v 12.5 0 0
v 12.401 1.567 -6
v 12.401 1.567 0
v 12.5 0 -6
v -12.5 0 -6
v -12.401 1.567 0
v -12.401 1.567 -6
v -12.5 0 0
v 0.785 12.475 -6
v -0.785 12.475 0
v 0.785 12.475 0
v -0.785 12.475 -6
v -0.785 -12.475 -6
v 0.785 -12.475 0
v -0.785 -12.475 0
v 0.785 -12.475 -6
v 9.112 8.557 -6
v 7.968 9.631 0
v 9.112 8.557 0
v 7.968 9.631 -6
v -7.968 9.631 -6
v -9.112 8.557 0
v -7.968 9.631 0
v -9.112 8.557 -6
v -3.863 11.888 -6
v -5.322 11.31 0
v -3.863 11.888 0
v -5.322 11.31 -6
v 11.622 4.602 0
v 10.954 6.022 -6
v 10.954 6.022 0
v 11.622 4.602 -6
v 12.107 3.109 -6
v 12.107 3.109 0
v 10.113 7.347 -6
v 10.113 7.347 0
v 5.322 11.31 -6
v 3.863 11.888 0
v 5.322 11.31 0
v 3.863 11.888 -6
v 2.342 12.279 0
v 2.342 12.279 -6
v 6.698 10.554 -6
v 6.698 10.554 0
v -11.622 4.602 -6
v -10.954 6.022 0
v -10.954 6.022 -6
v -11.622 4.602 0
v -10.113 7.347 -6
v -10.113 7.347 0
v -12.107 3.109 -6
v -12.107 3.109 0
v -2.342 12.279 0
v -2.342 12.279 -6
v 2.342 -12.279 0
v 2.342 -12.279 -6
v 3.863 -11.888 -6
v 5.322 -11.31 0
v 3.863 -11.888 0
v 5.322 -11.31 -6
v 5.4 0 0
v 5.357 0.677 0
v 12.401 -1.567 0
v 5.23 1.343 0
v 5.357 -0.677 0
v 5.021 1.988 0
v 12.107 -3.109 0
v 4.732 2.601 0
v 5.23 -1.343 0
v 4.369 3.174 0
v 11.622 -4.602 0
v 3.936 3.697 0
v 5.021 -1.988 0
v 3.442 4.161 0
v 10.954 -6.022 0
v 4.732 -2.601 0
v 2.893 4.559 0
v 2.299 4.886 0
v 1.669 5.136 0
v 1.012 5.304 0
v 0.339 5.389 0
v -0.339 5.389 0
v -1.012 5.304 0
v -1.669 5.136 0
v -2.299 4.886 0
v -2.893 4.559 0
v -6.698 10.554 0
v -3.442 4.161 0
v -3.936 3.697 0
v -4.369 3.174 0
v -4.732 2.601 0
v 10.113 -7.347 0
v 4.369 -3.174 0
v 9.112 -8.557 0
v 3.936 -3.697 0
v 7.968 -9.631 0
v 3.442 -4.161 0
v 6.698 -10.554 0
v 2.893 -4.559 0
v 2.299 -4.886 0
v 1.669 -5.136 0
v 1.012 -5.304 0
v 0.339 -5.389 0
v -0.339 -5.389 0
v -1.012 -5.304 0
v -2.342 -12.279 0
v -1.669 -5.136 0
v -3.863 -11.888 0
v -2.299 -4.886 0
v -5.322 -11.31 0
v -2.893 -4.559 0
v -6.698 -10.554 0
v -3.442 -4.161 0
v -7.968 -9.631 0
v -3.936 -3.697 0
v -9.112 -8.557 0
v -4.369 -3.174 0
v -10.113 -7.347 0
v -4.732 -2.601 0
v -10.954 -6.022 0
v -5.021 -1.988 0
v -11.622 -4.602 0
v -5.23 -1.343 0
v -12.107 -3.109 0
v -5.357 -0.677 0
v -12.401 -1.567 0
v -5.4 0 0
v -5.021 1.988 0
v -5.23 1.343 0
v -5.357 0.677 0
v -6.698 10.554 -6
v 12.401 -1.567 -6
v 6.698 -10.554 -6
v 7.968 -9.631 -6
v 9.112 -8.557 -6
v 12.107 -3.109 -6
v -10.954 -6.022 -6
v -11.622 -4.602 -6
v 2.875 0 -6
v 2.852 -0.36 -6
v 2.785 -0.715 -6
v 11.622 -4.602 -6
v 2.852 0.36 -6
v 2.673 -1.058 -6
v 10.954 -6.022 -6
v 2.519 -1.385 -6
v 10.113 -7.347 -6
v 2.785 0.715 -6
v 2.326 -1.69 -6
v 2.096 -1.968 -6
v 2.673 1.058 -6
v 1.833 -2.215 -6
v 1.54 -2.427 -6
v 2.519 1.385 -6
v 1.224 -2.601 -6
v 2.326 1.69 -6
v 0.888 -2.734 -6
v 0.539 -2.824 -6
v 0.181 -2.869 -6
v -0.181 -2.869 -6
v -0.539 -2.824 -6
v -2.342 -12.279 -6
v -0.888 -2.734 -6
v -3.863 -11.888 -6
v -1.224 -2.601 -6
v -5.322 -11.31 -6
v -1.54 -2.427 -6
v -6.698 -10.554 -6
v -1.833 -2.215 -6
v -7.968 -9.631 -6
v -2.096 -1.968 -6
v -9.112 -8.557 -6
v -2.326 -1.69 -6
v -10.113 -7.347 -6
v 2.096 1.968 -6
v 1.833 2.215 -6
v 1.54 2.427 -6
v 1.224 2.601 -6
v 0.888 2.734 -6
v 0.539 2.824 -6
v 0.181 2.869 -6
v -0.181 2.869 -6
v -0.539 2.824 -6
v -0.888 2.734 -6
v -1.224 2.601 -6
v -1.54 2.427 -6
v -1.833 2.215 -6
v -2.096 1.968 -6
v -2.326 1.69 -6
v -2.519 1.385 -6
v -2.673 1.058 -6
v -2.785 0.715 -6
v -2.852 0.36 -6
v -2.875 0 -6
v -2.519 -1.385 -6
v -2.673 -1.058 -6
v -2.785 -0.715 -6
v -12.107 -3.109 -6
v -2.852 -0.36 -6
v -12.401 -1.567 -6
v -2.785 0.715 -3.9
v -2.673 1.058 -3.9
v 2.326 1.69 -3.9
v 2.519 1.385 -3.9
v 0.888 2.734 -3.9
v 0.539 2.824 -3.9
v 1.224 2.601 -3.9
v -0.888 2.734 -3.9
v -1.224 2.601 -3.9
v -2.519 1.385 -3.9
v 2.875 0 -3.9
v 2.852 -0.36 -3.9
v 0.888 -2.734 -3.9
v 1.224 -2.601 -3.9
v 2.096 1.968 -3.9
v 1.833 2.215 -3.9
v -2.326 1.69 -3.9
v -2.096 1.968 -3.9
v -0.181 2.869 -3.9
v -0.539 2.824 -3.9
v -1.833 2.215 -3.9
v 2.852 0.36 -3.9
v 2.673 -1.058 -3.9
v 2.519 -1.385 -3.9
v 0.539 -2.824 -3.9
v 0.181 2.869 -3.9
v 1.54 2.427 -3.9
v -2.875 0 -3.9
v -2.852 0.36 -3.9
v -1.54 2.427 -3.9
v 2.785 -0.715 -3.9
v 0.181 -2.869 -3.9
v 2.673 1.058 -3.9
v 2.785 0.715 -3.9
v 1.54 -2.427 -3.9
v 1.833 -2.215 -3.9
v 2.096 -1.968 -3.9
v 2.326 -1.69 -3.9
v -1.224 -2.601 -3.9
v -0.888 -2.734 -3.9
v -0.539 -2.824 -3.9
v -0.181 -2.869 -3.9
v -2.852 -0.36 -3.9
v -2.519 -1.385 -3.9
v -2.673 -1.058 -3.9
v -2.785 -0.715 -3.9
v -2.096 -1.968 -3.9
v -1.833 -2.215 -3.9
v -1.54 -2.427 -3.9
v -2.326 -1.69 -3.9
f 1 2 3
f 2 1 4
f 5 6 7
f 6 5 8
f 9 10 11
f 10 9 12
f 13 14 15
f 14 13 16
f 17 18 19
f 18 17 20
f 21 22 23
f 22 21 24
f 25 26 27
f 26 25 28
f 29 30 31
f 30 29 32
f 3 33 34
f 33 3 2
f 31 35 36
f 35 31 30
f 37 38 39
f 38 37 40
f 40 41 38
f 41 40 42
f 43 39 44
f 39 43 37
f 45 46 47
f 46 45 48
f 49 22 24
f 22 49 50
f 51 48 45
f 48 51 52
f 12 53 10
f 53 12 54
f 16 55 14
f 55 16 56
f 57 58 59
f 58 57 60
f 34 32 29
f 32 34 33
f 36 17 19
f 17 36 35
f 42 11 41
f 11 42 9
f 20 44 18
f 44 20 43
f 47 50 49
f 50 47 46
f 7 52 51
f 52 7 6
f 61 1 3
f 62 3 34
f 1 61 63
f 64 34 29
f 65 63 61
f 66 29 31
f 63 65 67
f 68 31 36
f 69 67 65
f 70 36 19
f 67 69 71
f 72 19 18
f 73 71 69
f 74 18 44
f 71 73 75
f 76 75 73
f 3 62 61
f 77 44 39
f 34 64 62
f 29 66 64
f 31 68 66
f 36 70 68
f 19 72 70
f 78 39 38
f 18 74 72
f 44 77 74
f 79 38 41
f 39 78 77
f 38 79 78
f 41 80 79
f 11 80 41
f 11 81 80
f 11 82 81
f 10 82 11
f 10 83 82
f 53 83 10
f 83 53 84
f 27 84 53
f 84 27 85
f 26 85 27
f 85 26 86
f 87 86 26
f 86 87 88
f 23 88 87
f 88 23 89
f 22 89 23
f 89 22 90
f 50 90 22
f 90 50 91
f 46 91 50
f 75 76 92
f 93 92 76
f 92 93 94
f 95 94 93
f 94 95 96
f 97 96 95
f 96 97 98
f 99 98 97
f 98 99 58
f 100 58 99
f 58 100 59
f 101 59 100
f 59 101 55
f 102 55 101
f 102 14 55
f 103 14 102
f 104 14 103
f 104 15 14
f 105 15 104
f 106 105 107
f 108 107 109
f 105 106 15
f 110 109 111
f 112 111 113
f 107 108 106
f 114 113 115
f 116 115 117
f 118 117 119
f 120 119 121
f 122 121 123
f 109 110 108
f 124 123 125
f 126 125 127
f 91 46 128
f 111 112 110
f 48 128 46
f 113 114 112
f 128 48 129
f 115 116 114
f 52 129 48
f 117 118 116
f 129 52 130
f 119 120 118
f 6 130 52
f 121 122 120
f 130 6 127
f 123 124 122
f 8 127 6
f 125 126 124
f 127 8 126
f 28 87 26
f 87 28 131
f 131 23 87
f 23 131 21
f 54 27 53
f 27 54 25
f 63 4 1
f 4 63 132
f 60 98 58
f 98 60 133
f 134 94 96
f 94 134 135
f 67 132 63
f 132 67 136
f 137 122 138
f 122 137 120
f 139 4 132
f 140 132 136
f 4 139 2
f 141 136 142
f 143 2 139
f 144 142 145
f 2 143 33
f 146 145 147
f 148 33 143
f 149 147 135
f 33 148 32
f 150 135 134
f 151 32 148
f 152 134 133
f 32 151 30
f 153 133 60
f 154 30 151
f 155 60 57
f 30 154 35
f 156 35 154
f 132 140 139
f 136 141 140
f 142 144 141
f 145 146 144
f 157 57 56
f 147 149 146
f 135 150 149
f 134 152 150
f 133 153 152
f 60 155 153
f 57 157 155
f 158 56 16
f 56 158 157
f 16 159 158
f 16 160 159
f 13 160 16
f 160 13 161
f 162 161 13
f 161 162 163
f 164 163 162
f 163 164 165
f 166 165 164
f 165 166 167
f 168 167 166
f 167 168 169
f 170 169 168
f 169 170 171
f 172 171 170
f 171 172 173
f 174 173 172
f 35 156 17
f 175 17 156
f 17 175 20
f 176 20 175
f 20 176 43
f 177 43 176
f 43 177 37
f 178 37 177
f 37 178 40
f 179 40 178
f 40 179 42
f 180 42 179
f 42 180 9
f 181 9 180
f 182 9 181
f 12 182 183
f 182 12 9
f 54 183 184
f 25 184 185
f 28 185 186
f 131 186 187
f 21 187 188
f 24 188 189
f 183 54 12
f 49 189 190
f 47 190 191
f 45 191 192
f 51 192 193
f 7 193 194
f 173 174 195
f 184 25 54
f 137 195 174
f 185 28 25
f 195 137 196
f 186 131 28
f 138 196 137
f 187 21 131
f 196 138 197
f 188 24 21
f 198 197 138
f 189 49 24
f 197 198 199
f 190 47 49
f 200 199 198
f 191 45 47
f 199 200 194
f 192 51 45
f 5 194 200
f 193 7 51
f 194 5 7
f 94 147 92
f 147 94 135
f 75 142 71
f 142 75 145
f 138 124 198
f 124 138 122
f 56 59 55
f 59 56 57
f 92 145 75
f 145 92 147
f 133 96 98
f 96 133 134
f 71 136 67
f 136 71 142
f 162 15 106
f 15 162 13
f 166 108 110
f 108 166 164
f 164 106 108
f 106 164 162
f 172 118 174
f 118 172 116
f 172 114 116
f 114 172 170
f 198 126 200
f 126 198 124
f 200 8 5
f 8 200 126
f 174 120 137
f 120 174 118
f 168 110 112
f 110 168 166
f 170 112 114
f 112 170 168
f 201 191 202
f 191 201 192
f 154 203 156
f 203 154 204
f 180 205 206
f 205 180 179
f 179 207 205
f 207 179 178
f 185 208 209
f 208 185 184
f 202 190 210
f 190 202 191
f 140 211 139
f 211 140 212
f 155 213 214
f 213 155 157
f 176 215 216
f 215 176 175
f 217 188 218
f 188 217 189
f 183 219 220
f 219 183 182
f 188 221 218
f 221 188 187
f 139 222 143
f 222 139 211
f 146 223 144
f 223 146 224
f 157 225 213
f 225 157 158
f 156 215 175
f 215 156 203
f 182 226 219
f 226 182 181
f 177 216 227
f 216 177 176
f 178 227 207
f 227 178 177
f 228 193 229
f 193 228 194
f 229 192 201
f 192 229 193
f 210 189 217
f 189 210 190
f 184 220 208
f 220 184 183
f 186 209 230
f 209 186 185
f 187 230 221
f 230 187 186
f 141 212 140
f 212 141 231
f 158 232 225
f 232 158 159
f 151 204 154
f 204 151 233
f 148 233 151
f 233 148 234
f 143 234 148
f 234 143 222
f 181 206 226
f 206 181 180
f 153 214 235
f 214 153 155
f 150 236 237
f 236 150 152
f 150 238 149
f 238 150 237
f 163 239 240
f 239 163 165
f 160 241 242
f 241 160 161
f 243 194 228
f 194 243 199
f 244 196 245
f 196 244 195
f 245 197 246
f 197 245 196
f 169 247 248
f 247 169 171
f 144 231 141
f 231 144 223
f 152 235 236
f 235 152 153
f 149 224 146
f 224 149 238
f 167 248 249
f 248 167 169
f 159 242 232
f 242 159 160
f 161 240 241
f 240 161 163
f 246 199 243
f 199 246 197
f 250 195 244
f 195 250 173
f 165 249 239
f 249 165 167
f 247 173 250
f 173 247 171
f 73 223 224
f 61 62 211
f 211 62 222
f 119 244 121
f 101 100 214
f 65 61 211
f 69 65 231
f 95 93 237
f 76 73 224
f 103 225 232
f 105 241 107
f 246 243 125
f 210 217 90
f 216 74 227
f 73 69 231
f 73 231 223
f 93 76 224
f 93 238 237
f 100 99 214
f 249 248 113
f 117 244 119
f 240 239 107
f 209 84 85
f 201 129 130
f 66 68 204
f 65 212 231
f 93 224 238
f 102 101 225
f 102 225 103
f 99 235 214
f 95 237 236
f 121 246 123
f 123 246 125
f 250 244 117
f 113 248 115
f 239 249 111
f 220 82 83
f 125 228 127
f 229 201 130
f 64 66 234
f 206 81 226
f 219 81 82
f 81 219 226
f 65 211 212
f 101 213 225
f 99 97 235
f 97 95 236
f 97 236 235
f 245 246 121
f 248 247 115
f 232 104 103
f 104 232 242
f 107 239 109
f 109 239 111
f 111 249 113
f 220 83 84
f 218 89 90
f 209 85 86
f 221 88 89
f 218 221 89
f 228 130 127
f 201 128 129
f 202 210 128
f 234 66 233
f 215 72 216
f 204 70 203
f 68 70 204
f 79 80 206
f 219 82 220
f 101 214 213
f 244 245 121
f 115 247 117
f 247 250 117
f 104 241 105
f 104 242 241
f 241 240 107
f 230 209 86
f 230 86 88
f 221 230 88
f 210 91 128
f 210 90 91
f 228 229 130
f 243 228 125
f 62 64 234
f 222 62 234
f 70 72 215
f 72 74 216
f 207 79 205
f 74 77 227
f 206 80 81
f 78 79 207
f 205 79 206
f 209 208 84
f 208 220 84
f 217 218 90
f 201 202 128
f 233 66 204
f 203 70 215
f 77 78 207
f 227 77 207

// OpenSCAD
$fn = 50;


difference() {
	union() {
		translate(v = [0, 0, -6.0000000000]) {
			cylinder(h = 6, r = 12.5000000000);
		}
		#translate(v = [0, 0, -9.0000000000]) {
			cylinder(h = 9, r = 2.8750000000);
		}
	}
	union() {
		translate(v = [0, 0, 0]) {
			rotate(a = [0, 0, 0]) {
				difference() {
					union() {
						translate(v = [0, 0, -9.0000000000]) {
							cylinder(h = 9, r = 2.6000000000);
						}
						translate(v = [0, 0, -3.9000000000]) {
							cylinder(h = 3.9000000000, r1 = 2.8750000000, r2 = 5.4000000000);
						}
						translate(v = [0, 0, -9.0000000000]) {
							cylinder(h = 9, r = 2.8750000000);
						}
						translate(v = [0, 0, -9.0000000000]) {
							cylinder(h = 9, r = 2.6000000000);
						}
					}
					union();
				}
			}
		}
	}
}
